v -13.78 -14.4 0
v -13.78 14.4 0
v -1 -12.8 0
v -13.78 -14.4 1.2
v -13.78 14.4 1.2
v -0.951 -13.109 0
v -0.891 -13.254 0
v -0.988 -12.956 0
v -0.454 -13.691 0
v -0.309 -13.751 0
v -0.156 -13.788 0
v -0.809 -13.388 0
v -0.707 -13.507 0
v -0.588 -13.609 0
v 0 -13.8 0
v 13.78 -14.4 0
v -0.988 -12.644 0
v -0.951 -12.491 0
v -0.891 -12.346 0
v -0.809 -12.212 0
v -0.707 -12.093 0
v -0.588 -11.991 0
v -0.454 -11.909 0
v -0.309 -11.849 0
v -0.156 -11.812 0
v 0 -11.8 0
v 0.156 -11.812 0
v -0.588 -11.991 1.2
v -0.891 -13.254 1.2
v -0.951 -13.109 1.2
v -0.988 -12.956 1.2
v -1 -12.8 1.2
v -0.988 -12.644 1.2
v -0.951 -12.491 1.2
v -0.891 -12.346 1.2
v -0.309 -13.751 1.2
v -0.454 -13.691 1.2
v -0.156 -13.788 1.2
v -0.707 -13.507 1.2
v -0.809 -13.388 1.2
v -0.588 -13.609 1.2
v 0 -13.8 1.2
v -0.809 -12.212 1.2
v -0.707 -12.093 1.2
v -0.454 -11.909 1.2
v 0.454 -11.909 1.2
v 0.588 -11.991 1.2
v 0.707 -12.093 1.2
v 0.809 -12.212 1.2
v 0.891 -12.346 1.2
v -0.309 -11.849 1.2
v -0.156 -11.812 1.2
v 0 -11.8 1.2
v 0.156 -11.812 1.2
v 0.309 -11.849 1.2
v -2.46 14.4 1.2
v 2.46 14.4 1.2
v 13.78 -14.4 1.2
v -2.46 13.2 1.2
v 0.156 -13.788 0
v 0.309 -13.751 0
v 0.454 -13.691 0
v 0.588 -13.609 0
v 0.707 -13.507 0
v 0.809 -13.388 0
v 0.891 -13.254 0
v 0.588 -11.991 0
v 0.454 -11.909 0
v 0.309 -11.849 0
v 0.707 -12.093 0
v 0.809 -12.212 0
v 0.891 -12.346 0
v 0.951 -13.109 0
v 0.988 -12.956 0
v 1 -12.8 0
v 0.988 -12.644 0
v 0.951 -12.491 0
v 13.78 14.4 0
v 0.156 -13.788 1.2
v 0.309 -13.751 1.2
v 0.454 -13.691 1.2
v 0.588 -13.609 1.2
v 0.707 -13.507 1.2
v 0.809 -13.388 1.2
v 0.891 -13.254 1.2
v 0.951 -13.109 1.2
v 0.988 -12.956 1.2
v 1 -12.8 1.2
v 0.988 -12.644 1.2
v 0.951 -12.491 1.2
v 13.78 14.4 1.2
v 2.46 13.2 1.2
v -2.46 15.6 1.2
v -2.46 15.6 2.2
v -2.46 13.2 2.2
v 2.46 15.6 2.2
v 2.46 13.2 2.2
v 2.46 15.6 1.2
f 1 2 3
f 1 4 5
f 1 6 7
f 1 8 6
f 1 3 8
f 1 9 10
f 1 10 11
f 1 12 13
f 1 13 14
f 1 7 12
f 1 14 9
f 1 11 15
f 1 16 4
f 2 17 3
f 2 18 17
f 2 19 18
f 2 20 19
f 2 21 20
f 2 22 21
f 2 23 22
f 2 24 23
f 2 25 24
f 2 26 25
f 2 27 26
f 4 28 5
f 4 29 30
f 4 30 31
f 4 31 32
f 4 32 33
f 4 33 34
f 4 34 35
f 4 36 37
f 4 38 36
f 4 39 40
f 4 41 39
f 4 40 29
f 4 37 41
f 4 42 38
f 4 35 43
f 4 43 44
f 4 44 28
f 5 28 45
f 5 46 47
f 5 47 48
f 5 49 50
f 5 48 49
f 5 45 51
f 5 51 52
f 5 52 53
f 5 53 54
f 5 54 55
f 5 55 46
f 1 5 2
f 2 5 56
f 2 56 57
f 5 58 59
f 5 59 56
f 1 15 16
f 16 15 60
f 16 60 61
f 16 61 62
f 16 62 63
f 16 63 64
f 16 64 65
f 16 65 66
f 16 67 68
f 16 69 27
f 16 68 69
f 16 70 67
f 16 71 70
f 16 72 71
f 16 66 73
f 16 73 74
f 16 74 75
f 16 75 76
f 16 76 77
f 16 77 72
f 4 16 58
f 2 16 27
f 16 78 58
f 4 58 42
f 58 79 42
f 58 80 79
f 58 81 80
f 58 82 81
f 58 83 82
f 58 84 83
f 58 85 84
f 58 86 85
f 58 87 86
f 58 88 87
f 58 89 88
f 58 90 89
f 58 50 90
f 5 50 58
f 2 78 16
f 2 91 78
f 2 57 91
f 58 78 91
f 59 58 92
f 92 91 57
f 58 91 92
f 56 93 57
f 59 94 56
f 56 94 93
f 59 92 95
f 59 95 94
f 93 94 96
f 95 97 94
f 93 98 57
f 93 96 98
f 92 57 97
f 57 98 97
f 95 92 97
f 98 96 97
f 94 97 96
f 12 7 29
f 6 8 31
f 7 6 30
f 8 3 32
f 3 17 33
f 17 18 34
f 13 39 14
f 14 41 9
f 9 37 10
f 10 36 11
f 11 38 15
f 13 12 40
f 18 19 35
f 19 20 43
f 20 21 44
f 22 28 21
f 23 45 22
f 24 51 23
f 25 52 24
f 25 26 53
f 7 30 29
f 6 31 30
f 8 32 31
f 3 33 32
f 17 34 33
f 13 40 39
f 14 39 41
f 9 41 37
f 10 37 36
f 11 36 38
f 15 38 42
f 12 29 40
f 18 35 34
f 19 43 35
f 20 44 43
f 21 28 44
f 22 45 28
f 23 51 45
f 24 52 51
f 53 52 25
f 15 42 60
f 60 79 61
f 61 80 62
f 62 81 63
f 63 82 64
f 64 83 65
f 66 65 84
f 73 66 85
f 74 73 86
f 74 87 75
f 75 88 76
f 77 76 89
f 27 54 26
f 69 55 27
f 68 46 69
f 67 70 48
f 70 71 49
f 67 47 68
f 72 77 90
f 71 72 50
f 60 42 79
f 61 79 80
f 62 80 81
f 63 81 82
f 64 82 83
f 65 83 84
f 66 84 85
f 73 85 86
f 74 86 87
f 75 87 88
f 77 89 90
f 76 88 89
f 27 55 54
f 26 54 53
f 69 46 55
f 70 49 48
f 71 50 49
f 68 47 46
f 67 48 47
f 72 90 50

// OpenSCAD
// ============================================================
// 하우징 Peltier 30x30 - housing_peltier_closure2_v2 (별도 부품)
// housing_peltier_closure2_v2에서 판재 크기를 가로/세로 각 5mm씩 키움 (탭 크기는 동일).
// 나사 구멍은 Y축 음수방향으로 2.5mm 추가 이동.
// ============================================================

module housing_peltier_closure2_v2() {
    plate_w = 27.56; // 가로 (22.56 -> 5mm 증가)
    plate_h = 28.8;  // 세로 (23.8 -> 5mm 증가)
    plate_t = 1.2;   // 판재 두께

    // 돌출 탭: housing_peltier_closure1_v2와 동일한 구조.
    // 가로 4.92mm. 세로(Y)는 +Y쪽 가장자리 기준 면 위에 1.2mm 걸치고(overlap)
    // 바깥으로 1.2mm 튀어나옴(protrude) = 총 2.4mm. 판재 위에 tab_z만큼 돌출.
    tab_w        = 4.92; // 가로
    tab_protrude = 1.2;  // 3D 기준 +Y 방향으로 면 바깥으로 튀어나오는 길이
    tab_overlap  = 1.2;  // 면 위에 걸쳐있는 길이 (+Y쪽 가장자리에서 안쪽으로)
    tab_len      = tab_protrude + tab_overlap; // 세로 전체 길이 (2.4mm)
    tab_z        = 1;    // 돌출부가 판재 위로 추가로 튀어나오는 두께(높이)

    // 나사 구멍: 판재 중심에서 Y축 음수 방향으로 10.3mm + 2.5mm = 12.8mm 떨어진 위치.
    // 보스 없이 Z방향(판재를 관통)으로 뚫림.
    screw_d = 2;
    screw_y = -12.8;

    echo("[PeltierClosure2] tab_w =", tab_w, " tab_len =", tab_len, " tab_z =", tab_z);
    echo("[PeltierClosure2] screw_y =", screw_y);

    difference() {
        union() {
            // 메인 평판
            color("gray")
                linear_extrude(height = plate_t)
                    square([plate_w, plate_h], center = true);

            // 윗변 돌출 탭 (실제 3D, 판재 위에 Z 깊이 tab_z 추가), 윗변 바깥쪽으로 튀어나옴.
            color("SteelBlue")
                translate([0, plate_h / 2 - tab_overlap + tab_len / 2, plate_t])
                    linear_extrude(height = tab_z)
                        square([tab_w, tab_len], center = true);
        }

        // 나사 구멍 (Z방향 관통)
        translate([0, screw_y, -0.1])
            cylinder(d = screw_d, h = plate_t + 0.2, $fn = 40);
    }
}

housing_peltier_closure2_v2();
